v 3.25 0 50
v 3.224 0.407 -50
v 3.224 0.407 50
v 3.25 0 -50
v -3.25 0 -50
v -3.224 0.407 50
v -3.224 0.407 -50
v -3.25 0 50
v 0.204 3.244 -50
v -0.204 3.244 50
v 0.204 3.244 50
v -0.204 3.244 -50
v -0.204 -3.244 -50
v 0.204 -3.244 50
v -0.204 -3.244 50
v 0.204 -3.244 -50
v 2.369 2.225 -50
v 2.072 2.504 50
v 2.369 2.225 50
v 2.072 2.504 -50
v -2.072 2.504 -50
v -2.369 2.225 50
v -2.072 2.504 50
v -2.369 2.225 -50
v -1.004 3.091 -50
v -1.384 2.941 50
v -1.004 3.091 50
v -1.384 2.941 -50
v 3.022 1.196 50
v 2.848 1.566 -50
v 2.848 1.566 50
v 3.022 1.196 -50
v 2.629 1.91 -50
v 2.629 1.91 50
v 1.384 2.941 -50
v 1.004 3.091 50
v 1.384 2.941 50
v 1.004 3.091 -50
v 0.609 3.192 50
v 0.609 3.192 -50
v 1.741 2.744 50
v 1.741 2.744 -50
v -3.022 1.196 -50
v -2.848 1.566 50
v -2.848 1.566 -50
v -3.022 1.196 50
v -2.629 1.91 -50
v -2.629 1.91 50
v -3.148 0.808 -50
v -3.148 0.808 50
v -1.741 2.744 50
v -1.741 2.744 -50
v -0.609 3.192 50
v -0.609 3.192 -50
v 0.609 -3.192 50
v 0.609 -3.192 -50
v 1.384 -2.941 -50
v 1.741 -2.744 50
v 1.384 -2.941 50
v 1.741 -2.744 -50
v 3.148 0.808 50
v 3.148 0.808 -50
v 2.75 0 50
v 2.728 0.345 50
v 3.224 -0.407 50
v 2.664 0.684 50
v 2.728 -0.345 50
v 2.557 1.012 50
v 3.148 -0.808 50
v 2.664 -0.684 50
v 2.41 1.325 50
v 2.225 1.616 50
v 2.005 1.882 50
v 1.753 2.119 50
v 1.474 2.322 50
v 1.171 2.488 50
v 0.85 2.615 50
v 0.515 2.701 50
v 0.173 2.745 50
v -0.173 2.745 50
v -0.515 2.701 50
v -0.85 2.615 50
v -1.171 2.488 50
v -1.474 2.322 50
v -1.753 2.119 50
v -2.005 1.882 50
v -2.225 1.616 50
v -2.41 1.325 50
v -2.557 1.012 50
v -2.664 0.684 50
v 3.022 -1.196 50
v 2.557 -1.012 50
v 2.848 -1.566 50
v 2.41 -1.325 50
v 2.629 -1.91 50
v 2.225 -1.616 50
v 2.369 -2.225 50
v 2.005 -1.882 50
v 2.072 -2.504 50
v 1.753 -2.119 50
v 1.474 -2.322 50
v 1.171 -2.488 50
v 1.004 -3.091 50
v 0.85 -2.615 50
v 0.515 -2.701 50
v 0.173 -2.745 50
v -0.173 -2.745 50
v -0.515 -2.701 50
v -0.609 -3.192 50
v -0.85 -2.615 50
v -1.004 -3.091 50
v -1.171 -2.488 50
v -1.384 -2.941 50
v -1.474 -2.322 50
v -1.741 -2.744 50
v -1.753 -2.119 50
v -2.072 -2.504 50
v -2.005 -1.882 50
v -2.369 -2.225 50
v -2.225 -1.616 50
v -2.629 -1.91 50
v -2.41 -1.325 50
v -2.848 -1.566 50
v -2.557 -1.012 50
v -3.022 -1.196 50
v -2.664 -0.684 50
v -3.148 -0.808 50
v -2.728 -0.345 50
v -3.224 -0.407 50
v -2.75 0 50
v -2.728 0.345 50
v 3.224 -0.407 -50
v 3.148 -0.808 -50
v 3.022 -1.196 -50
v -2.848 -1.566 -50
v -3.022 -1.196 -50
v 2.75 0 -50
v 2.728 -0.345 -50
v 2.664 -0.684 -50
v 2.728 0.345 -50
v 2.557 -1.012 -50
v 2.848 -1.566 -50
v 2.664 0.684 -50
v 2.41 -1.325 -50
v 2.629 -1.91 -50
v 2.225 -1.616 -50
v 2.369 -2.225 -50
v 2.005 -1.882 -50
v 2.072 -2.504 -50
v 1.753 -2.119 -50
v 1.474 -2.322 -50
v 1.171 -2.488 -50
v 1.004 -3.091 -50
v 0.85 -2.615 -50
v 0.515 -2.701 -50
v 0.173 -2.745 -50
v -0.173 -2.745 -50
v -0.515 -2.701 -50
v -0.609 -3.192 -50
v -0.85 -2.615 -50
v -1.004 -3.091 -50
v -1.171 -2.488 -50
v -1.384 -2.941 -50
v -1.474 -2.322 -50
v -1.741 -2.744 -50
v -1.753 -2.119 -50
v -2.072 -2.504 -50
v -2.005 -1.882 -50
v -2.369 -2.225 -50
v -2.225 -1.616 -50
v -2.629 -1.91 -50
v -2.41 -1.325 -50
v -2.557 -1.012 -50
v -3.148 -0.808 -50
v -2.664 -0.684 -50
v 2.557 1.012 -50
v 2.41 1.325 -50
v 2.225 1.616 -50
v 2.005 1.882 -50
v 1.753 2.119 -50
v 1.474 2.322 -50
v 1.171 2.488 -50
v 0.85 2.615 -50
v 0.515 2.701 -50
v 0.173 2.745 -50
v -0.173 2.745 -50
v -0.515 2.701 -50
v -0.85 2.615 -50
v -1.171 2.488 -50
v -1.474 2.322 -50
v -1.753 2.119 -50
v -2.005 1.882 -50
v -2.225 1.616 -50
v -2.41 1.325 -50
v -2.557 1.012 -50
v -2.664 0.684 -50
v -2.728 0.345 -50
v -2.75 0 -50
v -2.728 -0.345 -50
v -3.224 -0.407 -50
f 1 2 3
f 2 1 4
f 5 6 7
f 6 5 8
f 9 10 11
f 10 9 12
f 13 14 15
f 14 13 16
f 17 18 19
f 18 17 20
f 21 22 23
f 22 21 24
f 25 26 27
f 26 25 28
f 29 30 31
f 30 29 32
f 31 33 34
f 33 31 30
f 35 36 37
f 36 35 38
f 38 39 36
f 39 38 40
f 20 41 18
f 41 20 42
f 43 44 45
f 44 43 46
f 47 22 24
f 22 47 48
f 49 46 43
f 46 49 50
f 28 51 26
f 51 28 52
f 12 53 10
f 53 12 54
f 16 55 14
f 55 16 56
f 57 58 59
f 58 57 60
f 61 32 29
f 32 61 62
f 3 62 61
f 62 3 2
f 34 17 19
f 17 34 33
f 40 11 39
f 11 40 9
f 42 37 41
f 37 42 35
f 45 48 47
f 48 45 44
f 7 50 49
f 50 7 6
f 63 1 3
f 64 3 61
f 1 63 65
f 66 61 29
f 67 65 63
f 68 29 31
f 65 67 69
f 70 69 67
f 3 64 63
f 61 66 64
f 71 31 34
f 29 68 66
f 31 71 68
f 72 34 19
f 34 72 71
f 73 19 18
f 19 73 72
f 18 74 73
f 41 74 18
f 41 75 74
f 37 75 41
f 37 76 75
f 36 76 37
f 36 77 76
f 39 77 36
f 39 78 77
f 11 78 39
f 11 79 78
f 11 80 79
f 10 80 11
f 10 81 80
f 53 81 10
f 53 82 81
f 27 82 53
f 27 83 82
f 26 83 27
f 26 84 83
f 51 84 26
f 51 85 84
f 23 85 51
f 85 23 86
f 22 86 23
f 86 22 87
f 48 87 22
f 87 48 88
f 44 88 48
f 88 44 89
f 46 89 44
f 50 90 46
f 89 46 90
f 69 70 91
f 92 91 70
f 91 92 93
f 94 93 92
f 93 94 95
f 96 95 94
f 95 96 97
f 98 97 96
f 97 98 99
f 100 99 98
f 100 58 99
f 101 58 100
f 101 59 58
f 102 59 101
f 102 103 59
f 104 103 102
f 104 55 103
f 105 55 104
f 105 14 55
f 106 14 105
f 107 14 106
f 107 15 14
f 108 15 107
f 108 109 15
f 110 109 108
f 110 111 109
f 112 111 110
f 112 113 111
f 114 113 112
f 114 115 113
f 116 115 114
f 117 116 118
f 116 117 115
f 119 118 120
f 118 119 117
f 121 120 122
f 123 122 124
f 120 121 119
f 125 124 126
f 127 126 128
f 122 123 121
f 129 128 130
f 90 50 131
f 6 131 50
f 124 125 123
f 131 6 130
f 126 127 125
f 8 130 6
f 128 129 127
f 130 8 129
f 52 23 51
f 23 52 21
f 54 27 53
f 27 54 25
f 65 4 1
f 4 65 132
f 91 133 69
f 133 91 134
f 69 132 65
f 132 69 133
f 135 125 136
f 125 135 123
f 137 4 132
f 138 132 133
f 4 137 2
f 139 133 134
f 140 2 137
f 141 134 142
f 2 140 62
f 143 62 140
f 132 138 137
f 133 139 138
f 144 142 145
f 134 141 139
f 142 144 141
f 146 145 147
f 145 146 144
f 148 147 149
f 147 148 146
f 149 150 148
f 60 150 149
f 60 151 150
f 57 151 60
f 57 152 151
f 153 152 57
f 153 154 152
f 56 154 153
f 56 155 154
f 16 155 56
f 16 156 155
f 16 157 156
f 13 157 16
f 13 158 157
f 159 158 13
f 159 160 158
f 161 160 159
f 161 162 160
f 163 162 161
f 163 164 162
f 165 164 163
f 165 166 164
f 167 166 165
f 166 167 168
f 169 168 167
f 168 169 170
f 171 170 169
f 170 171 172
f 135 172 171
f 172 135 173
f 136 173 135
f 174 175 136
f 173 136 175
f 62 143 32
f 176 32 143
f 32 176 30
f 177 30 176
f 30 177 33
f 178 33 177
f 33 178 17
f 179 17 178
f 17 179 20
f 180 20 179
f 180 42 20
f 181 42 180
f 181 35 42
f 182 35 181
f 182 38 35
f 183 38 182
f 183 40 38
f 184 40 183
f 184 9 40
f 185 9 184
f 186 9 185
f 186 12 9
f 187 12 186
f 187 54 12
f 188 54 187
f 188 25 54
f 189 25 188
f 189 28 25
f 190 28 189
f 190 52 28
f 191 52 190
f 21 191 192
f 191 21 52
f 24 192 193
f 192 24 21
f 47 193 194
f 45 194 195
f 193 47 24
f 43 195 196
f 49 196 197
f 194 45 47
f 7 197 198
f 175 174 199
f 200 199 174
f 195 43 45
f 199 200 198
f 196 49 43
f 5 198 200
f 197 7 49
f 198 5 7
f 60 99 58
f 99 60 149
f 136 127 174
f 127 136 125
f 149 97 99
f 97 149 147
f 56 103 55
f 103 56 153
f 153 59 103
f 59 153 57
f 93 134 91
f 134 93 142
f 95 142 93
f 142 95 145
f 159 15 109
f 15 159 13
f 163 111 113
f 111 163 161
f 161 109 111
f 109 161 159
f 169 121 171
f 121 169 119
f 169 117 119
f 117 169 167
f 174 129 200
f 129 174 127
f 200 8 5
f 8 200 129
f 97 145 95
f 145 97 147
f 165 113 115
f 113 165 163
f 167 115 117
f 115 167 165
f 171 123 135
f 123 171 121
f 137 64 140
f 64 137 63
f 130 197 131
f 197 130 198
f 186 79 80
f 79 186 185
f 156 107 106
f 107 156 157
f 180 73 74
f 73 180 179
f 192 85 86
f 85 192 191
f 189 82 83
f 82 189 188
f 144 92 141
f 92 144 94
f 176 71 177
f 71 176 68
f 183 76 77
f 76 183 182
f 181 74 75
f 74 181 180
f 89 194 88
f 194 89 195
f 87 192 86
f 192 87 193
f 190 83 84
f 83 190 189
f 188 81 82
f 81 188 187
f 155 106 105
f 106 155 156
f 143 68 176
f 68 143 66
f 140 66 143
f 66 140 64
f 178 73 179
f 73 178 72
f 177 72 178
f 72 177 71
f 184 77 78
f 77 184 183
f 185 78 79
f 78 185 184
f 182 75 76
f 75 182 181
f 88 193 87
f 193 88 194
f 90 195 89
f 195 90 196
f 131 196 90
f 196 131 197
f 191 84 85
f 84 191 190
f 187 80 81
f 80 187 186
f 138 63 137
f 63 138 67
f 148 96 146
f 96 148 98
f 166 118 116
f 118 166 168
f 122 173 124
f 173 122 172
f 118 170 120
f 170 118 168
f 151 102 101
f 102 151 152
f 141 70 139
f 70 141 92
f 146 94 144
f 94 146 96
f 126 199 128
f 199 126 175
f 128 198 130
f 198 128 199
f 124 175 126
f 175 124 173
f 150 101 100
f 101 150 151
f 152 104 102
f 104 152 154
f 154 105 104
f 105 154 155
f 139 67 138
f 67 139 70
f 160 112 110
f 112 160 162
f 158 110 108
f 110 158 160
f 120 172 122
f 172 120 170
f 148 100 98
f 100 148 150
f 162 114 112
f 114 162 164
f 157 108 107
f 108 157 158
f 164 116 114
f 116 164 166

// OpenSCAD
$fn = 50;


difference() {
	union() {
		translate(v = [0, 0, -50.0000000000]) {
			cylinder(h = 100, r = 3.2500000000);
		}
	}
	union() {
		translate(v = [0, 0, -100.0000000000]) {
			cylinder(h = 200, r = 2.7500000000);
		}
	}
}
